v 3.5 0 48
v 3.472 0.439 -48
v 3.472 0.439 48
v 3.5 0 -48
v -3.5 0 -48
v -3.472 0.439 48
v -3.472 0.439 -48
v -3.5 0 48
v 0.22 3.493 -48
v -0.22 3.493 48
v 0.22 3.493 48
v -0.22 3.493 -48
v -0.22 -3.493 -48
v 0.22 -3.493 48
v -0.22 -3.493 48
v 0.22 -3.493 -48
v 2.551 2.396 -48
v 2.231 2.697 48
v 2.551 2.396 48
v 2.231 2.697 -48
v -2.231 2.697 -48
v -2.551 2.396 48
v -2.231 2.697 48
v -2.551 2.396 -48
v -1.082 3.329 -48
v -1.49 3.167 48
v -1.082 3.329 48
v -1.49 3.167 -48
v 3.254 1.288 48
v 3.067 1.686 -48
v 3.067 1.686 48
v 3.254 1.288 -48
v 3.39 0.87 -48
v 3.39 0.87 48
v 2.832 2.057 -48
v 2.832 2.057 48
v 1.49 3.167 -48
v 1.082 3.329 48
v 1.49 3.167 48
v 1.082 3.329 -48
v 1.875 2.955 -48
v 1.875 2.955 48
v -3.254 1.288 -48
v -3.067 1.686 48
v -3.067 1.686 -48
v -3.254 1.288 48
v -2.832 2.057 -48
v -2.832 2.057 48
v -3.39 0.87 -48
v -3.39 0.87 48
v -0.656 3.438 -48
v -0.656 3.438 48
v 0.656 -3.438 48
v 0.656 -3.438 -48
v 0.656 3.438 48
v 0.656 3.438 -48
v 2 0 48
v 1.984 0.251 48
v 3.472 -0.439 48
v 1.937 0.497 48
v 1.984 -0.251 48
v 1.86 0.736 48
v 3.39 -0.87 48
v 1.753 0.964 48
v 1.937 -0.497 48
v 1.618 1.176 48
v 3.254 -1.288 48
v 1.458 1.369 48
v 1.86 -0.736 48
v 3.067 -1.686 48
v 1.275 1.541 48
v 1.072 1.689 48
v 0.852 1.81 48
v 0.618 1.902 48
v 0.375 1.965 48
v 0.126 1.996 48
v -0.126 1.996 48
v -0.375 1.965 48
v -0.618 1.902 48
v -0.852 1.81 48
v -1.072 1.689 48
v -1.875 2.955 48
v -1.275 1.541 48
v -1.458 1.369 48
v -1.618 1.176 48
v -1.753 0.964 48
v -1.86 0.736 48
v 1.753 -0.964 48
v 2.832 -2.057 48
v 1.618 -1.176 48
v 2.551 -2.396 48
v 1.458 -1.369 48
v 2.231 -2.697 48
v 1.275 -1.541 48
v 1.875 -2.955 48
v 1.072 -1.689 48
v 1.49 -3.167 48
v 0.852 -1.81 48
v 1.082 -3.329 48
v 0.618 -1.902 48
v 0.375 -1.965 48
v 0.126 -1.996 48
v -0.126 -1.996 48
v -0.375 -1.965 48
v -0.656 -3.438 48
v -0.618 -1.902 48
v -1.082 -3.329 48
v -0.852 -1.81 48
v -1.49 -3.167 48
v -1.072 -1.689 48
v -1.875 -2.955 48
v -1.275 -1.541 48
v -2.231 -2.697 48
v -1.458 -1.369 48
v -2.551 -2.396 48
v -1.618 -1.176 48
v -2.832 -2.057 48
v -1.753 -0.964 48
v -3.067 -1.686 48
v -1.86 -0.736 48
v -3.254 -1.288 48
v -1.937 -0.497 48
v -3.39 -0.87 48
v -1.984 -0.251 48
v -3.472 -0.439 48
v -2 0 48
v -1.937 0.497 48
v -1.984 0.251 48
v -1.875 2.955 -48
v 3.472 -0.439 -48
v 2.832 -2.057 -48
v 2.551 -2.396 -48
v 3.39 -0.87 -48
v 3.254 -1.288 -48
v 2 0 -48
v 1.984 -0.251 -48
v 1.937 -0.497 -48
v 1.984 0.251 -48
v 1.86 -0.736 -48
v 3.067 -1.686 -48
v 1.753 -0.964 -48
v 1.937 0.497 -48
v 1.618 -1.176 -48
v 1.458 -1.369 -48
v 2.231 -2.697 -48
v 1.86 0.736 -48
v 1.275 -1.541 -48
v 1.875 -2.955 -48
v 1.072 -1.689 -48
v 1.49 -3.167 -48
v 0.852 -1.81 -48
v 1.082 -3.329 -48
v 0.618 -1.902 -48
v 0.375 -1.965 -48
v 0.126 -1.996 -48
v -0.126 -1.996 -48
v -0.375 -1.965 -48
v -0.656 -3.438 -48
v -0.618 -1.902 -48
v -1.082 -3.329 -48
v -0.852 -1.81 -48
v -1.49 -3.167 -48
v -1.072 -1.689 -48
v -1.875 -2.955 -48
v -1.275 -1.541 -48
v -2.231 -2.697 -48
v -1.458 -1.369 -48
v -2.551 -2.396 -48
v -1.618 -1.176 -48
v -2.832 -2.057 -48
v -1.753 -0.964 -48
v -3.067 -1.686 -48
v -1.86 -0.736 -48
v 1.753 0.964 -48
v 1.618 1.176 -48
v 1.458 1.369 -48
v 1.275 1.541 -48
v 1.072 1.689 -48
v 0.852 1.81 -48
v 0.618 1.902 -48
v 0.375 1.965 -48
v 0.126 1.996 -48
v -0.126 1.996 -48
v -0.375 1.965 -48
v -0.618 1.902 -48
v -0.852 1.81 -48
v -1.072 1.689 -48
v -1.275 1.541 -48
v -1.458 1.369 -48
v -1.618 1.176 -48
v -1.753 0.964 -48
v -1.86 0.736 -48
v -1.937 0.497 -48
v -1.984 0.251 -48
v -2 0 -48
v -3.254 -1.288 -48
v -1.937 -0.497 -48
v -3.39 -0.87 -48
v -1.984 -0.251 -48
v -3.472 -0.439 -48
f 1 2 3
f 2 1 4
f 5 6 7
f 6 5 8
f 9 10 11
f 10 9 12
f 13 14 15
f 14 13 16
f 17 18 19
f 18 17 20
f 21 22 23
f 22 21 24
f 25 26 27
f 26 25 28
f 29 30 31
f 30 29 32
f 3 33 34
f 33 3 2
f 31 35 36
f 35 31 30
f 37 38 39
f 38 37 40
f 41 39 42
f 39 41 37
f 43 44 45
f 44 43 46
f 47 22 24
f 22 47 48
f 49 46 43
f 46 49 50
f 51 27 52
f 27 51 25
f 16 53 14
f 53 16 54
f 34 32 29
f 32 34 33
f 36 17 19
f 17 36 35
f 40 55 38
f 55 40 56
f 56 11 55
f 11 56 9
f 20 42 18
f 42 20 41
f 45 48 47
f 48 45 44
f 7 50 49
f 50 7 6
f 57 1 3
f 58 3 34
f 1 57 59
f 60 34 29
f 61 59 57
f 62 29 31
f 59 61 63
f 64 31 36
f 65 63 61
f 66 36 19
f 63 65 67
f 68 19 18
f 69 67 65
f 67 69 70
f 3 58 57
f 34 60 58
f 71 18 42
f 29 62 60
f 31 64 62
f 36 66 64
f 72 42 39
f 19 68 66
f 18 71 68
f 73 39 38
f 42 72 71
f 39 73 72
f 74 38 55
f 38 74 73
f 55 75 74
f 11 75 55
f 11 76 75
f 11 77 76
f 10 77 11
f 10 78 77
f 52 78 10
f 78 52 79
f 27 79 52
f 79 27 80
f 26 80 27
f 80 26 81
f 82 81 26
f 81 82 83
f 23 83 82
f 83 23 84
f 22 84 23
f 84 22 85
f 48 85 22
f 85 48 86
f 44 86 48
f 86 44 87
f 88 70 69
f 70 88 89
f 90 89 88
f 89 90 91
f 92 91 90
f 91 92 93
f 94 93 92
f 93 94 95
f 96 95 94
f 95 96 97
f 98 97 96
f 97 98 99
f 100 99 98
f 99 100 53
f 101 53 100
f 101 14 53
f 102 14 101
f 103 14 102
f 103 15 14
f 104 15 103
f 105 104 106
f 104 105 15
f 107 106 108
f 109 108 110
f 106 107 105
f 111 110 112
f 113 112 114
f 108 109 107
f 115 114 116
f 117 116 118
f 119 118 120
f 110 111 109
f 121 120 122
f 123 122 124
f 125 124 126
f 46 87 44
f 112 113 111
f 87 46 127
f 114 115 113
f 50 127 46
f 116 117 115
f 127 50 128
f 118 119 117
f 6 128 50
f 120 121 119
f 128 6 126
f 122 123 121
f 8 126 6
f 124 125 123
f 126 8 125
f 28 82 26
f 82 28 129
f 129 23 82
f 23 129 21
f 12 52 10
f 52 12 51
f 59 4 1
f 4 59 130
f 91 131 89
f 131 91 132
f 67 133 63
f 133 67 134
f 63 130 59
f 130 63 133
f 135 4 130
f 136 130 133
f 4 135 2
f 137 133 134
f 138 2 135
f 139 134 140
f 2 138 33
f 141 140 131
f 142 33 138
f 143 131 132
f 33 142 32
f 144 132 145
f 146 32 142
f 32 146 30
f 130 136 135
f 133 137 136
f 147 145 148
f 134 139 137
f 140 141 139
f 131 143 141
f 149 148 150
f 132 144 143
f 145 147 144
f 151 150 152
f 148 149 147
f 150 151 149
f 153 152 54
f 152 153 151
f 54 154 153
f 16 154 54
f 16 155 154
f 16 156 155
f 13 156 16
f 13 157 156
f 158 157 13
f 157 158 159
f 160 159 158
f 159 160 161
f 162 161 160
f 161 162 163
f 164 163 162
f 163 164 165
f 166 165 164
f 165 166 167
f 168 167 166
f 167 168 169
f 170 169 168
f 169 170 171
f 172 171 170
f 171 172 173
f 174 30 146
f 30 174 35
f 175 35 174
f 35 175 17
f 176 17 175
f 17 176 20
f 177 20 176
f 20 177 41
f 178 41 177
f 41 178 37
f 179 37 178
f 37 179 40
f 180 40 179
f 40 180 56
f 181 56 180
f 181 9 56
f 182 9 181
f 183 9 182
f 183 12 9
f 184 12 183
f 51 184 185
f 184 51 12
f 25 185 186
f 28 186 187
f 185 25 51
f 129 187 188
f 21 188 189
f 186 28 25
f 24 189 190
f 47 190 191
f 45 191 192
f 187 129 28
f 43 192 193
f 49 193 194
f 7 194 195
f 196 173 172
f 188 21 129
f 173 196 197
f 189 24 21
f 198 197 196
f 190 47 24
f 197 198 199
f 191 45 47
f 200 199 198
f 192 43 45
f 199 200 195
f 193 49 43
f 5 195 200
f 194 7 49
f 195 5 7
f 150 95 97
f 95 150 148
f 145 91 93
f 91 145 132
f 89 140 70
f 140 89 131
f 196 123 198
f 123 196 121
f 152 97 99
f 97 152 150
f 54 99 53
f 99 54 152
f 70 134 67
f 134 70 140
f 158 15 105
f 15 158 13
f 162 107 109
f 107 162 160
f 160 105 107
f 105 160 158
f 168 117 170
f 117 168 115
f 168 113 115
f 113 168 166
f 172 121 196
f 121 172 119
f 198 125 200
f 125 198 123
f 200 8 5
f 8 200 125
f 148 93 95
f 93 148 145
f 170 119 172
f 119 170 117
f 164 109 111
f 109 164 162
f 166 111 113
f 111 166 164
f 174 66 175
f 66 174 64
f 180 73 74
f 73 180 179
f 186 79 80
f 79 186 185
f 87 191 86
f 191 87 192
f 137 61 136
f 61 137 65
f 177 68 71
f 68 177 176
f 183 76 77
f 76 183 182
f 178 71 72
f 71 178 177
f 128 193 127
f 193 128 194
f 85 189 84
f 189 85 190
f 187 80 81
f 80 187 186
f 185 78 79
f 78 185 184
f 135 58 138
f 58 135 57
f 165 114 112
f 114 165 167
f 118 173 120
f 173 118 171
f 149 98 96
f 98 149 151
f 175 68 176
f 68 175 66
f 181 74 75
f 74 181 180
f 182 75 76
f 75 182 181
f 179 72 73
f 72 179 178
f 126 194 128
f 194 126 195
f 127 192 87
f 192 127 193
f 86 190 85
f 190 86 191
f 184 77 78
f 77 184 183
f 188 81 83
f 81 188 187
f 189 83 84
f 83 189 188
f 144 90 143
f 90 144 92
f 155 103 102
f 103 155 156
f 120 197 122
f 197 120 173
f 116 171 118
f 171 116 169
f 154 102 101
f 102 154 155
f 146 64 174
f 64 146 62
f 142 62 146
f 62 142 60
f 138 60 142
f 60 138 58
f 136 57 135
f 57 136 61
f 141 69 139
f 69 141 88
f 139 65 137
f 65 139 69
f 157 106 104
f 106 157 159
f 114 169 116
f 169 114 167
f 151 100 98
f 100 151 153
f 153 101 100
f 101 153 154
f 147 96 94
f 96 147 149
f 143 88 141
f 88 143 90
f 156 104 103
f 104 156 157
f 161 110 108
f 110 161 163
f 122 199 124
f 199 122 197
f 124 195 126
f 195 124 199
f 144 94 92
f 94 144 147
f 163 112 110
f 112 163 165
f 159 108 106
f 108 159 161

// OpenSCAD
$fn = 50;


difference() {
	union() {
		translate(v = [0, 0, -48.0000000000]) {
			cylinder(h = 96, r = 3.5000000000);
		}
	}
	union() {
		translate(v = [0, 0, -100.0000000000]) {
			cylinder(h = 200, r = 2);
		}
	}
}
